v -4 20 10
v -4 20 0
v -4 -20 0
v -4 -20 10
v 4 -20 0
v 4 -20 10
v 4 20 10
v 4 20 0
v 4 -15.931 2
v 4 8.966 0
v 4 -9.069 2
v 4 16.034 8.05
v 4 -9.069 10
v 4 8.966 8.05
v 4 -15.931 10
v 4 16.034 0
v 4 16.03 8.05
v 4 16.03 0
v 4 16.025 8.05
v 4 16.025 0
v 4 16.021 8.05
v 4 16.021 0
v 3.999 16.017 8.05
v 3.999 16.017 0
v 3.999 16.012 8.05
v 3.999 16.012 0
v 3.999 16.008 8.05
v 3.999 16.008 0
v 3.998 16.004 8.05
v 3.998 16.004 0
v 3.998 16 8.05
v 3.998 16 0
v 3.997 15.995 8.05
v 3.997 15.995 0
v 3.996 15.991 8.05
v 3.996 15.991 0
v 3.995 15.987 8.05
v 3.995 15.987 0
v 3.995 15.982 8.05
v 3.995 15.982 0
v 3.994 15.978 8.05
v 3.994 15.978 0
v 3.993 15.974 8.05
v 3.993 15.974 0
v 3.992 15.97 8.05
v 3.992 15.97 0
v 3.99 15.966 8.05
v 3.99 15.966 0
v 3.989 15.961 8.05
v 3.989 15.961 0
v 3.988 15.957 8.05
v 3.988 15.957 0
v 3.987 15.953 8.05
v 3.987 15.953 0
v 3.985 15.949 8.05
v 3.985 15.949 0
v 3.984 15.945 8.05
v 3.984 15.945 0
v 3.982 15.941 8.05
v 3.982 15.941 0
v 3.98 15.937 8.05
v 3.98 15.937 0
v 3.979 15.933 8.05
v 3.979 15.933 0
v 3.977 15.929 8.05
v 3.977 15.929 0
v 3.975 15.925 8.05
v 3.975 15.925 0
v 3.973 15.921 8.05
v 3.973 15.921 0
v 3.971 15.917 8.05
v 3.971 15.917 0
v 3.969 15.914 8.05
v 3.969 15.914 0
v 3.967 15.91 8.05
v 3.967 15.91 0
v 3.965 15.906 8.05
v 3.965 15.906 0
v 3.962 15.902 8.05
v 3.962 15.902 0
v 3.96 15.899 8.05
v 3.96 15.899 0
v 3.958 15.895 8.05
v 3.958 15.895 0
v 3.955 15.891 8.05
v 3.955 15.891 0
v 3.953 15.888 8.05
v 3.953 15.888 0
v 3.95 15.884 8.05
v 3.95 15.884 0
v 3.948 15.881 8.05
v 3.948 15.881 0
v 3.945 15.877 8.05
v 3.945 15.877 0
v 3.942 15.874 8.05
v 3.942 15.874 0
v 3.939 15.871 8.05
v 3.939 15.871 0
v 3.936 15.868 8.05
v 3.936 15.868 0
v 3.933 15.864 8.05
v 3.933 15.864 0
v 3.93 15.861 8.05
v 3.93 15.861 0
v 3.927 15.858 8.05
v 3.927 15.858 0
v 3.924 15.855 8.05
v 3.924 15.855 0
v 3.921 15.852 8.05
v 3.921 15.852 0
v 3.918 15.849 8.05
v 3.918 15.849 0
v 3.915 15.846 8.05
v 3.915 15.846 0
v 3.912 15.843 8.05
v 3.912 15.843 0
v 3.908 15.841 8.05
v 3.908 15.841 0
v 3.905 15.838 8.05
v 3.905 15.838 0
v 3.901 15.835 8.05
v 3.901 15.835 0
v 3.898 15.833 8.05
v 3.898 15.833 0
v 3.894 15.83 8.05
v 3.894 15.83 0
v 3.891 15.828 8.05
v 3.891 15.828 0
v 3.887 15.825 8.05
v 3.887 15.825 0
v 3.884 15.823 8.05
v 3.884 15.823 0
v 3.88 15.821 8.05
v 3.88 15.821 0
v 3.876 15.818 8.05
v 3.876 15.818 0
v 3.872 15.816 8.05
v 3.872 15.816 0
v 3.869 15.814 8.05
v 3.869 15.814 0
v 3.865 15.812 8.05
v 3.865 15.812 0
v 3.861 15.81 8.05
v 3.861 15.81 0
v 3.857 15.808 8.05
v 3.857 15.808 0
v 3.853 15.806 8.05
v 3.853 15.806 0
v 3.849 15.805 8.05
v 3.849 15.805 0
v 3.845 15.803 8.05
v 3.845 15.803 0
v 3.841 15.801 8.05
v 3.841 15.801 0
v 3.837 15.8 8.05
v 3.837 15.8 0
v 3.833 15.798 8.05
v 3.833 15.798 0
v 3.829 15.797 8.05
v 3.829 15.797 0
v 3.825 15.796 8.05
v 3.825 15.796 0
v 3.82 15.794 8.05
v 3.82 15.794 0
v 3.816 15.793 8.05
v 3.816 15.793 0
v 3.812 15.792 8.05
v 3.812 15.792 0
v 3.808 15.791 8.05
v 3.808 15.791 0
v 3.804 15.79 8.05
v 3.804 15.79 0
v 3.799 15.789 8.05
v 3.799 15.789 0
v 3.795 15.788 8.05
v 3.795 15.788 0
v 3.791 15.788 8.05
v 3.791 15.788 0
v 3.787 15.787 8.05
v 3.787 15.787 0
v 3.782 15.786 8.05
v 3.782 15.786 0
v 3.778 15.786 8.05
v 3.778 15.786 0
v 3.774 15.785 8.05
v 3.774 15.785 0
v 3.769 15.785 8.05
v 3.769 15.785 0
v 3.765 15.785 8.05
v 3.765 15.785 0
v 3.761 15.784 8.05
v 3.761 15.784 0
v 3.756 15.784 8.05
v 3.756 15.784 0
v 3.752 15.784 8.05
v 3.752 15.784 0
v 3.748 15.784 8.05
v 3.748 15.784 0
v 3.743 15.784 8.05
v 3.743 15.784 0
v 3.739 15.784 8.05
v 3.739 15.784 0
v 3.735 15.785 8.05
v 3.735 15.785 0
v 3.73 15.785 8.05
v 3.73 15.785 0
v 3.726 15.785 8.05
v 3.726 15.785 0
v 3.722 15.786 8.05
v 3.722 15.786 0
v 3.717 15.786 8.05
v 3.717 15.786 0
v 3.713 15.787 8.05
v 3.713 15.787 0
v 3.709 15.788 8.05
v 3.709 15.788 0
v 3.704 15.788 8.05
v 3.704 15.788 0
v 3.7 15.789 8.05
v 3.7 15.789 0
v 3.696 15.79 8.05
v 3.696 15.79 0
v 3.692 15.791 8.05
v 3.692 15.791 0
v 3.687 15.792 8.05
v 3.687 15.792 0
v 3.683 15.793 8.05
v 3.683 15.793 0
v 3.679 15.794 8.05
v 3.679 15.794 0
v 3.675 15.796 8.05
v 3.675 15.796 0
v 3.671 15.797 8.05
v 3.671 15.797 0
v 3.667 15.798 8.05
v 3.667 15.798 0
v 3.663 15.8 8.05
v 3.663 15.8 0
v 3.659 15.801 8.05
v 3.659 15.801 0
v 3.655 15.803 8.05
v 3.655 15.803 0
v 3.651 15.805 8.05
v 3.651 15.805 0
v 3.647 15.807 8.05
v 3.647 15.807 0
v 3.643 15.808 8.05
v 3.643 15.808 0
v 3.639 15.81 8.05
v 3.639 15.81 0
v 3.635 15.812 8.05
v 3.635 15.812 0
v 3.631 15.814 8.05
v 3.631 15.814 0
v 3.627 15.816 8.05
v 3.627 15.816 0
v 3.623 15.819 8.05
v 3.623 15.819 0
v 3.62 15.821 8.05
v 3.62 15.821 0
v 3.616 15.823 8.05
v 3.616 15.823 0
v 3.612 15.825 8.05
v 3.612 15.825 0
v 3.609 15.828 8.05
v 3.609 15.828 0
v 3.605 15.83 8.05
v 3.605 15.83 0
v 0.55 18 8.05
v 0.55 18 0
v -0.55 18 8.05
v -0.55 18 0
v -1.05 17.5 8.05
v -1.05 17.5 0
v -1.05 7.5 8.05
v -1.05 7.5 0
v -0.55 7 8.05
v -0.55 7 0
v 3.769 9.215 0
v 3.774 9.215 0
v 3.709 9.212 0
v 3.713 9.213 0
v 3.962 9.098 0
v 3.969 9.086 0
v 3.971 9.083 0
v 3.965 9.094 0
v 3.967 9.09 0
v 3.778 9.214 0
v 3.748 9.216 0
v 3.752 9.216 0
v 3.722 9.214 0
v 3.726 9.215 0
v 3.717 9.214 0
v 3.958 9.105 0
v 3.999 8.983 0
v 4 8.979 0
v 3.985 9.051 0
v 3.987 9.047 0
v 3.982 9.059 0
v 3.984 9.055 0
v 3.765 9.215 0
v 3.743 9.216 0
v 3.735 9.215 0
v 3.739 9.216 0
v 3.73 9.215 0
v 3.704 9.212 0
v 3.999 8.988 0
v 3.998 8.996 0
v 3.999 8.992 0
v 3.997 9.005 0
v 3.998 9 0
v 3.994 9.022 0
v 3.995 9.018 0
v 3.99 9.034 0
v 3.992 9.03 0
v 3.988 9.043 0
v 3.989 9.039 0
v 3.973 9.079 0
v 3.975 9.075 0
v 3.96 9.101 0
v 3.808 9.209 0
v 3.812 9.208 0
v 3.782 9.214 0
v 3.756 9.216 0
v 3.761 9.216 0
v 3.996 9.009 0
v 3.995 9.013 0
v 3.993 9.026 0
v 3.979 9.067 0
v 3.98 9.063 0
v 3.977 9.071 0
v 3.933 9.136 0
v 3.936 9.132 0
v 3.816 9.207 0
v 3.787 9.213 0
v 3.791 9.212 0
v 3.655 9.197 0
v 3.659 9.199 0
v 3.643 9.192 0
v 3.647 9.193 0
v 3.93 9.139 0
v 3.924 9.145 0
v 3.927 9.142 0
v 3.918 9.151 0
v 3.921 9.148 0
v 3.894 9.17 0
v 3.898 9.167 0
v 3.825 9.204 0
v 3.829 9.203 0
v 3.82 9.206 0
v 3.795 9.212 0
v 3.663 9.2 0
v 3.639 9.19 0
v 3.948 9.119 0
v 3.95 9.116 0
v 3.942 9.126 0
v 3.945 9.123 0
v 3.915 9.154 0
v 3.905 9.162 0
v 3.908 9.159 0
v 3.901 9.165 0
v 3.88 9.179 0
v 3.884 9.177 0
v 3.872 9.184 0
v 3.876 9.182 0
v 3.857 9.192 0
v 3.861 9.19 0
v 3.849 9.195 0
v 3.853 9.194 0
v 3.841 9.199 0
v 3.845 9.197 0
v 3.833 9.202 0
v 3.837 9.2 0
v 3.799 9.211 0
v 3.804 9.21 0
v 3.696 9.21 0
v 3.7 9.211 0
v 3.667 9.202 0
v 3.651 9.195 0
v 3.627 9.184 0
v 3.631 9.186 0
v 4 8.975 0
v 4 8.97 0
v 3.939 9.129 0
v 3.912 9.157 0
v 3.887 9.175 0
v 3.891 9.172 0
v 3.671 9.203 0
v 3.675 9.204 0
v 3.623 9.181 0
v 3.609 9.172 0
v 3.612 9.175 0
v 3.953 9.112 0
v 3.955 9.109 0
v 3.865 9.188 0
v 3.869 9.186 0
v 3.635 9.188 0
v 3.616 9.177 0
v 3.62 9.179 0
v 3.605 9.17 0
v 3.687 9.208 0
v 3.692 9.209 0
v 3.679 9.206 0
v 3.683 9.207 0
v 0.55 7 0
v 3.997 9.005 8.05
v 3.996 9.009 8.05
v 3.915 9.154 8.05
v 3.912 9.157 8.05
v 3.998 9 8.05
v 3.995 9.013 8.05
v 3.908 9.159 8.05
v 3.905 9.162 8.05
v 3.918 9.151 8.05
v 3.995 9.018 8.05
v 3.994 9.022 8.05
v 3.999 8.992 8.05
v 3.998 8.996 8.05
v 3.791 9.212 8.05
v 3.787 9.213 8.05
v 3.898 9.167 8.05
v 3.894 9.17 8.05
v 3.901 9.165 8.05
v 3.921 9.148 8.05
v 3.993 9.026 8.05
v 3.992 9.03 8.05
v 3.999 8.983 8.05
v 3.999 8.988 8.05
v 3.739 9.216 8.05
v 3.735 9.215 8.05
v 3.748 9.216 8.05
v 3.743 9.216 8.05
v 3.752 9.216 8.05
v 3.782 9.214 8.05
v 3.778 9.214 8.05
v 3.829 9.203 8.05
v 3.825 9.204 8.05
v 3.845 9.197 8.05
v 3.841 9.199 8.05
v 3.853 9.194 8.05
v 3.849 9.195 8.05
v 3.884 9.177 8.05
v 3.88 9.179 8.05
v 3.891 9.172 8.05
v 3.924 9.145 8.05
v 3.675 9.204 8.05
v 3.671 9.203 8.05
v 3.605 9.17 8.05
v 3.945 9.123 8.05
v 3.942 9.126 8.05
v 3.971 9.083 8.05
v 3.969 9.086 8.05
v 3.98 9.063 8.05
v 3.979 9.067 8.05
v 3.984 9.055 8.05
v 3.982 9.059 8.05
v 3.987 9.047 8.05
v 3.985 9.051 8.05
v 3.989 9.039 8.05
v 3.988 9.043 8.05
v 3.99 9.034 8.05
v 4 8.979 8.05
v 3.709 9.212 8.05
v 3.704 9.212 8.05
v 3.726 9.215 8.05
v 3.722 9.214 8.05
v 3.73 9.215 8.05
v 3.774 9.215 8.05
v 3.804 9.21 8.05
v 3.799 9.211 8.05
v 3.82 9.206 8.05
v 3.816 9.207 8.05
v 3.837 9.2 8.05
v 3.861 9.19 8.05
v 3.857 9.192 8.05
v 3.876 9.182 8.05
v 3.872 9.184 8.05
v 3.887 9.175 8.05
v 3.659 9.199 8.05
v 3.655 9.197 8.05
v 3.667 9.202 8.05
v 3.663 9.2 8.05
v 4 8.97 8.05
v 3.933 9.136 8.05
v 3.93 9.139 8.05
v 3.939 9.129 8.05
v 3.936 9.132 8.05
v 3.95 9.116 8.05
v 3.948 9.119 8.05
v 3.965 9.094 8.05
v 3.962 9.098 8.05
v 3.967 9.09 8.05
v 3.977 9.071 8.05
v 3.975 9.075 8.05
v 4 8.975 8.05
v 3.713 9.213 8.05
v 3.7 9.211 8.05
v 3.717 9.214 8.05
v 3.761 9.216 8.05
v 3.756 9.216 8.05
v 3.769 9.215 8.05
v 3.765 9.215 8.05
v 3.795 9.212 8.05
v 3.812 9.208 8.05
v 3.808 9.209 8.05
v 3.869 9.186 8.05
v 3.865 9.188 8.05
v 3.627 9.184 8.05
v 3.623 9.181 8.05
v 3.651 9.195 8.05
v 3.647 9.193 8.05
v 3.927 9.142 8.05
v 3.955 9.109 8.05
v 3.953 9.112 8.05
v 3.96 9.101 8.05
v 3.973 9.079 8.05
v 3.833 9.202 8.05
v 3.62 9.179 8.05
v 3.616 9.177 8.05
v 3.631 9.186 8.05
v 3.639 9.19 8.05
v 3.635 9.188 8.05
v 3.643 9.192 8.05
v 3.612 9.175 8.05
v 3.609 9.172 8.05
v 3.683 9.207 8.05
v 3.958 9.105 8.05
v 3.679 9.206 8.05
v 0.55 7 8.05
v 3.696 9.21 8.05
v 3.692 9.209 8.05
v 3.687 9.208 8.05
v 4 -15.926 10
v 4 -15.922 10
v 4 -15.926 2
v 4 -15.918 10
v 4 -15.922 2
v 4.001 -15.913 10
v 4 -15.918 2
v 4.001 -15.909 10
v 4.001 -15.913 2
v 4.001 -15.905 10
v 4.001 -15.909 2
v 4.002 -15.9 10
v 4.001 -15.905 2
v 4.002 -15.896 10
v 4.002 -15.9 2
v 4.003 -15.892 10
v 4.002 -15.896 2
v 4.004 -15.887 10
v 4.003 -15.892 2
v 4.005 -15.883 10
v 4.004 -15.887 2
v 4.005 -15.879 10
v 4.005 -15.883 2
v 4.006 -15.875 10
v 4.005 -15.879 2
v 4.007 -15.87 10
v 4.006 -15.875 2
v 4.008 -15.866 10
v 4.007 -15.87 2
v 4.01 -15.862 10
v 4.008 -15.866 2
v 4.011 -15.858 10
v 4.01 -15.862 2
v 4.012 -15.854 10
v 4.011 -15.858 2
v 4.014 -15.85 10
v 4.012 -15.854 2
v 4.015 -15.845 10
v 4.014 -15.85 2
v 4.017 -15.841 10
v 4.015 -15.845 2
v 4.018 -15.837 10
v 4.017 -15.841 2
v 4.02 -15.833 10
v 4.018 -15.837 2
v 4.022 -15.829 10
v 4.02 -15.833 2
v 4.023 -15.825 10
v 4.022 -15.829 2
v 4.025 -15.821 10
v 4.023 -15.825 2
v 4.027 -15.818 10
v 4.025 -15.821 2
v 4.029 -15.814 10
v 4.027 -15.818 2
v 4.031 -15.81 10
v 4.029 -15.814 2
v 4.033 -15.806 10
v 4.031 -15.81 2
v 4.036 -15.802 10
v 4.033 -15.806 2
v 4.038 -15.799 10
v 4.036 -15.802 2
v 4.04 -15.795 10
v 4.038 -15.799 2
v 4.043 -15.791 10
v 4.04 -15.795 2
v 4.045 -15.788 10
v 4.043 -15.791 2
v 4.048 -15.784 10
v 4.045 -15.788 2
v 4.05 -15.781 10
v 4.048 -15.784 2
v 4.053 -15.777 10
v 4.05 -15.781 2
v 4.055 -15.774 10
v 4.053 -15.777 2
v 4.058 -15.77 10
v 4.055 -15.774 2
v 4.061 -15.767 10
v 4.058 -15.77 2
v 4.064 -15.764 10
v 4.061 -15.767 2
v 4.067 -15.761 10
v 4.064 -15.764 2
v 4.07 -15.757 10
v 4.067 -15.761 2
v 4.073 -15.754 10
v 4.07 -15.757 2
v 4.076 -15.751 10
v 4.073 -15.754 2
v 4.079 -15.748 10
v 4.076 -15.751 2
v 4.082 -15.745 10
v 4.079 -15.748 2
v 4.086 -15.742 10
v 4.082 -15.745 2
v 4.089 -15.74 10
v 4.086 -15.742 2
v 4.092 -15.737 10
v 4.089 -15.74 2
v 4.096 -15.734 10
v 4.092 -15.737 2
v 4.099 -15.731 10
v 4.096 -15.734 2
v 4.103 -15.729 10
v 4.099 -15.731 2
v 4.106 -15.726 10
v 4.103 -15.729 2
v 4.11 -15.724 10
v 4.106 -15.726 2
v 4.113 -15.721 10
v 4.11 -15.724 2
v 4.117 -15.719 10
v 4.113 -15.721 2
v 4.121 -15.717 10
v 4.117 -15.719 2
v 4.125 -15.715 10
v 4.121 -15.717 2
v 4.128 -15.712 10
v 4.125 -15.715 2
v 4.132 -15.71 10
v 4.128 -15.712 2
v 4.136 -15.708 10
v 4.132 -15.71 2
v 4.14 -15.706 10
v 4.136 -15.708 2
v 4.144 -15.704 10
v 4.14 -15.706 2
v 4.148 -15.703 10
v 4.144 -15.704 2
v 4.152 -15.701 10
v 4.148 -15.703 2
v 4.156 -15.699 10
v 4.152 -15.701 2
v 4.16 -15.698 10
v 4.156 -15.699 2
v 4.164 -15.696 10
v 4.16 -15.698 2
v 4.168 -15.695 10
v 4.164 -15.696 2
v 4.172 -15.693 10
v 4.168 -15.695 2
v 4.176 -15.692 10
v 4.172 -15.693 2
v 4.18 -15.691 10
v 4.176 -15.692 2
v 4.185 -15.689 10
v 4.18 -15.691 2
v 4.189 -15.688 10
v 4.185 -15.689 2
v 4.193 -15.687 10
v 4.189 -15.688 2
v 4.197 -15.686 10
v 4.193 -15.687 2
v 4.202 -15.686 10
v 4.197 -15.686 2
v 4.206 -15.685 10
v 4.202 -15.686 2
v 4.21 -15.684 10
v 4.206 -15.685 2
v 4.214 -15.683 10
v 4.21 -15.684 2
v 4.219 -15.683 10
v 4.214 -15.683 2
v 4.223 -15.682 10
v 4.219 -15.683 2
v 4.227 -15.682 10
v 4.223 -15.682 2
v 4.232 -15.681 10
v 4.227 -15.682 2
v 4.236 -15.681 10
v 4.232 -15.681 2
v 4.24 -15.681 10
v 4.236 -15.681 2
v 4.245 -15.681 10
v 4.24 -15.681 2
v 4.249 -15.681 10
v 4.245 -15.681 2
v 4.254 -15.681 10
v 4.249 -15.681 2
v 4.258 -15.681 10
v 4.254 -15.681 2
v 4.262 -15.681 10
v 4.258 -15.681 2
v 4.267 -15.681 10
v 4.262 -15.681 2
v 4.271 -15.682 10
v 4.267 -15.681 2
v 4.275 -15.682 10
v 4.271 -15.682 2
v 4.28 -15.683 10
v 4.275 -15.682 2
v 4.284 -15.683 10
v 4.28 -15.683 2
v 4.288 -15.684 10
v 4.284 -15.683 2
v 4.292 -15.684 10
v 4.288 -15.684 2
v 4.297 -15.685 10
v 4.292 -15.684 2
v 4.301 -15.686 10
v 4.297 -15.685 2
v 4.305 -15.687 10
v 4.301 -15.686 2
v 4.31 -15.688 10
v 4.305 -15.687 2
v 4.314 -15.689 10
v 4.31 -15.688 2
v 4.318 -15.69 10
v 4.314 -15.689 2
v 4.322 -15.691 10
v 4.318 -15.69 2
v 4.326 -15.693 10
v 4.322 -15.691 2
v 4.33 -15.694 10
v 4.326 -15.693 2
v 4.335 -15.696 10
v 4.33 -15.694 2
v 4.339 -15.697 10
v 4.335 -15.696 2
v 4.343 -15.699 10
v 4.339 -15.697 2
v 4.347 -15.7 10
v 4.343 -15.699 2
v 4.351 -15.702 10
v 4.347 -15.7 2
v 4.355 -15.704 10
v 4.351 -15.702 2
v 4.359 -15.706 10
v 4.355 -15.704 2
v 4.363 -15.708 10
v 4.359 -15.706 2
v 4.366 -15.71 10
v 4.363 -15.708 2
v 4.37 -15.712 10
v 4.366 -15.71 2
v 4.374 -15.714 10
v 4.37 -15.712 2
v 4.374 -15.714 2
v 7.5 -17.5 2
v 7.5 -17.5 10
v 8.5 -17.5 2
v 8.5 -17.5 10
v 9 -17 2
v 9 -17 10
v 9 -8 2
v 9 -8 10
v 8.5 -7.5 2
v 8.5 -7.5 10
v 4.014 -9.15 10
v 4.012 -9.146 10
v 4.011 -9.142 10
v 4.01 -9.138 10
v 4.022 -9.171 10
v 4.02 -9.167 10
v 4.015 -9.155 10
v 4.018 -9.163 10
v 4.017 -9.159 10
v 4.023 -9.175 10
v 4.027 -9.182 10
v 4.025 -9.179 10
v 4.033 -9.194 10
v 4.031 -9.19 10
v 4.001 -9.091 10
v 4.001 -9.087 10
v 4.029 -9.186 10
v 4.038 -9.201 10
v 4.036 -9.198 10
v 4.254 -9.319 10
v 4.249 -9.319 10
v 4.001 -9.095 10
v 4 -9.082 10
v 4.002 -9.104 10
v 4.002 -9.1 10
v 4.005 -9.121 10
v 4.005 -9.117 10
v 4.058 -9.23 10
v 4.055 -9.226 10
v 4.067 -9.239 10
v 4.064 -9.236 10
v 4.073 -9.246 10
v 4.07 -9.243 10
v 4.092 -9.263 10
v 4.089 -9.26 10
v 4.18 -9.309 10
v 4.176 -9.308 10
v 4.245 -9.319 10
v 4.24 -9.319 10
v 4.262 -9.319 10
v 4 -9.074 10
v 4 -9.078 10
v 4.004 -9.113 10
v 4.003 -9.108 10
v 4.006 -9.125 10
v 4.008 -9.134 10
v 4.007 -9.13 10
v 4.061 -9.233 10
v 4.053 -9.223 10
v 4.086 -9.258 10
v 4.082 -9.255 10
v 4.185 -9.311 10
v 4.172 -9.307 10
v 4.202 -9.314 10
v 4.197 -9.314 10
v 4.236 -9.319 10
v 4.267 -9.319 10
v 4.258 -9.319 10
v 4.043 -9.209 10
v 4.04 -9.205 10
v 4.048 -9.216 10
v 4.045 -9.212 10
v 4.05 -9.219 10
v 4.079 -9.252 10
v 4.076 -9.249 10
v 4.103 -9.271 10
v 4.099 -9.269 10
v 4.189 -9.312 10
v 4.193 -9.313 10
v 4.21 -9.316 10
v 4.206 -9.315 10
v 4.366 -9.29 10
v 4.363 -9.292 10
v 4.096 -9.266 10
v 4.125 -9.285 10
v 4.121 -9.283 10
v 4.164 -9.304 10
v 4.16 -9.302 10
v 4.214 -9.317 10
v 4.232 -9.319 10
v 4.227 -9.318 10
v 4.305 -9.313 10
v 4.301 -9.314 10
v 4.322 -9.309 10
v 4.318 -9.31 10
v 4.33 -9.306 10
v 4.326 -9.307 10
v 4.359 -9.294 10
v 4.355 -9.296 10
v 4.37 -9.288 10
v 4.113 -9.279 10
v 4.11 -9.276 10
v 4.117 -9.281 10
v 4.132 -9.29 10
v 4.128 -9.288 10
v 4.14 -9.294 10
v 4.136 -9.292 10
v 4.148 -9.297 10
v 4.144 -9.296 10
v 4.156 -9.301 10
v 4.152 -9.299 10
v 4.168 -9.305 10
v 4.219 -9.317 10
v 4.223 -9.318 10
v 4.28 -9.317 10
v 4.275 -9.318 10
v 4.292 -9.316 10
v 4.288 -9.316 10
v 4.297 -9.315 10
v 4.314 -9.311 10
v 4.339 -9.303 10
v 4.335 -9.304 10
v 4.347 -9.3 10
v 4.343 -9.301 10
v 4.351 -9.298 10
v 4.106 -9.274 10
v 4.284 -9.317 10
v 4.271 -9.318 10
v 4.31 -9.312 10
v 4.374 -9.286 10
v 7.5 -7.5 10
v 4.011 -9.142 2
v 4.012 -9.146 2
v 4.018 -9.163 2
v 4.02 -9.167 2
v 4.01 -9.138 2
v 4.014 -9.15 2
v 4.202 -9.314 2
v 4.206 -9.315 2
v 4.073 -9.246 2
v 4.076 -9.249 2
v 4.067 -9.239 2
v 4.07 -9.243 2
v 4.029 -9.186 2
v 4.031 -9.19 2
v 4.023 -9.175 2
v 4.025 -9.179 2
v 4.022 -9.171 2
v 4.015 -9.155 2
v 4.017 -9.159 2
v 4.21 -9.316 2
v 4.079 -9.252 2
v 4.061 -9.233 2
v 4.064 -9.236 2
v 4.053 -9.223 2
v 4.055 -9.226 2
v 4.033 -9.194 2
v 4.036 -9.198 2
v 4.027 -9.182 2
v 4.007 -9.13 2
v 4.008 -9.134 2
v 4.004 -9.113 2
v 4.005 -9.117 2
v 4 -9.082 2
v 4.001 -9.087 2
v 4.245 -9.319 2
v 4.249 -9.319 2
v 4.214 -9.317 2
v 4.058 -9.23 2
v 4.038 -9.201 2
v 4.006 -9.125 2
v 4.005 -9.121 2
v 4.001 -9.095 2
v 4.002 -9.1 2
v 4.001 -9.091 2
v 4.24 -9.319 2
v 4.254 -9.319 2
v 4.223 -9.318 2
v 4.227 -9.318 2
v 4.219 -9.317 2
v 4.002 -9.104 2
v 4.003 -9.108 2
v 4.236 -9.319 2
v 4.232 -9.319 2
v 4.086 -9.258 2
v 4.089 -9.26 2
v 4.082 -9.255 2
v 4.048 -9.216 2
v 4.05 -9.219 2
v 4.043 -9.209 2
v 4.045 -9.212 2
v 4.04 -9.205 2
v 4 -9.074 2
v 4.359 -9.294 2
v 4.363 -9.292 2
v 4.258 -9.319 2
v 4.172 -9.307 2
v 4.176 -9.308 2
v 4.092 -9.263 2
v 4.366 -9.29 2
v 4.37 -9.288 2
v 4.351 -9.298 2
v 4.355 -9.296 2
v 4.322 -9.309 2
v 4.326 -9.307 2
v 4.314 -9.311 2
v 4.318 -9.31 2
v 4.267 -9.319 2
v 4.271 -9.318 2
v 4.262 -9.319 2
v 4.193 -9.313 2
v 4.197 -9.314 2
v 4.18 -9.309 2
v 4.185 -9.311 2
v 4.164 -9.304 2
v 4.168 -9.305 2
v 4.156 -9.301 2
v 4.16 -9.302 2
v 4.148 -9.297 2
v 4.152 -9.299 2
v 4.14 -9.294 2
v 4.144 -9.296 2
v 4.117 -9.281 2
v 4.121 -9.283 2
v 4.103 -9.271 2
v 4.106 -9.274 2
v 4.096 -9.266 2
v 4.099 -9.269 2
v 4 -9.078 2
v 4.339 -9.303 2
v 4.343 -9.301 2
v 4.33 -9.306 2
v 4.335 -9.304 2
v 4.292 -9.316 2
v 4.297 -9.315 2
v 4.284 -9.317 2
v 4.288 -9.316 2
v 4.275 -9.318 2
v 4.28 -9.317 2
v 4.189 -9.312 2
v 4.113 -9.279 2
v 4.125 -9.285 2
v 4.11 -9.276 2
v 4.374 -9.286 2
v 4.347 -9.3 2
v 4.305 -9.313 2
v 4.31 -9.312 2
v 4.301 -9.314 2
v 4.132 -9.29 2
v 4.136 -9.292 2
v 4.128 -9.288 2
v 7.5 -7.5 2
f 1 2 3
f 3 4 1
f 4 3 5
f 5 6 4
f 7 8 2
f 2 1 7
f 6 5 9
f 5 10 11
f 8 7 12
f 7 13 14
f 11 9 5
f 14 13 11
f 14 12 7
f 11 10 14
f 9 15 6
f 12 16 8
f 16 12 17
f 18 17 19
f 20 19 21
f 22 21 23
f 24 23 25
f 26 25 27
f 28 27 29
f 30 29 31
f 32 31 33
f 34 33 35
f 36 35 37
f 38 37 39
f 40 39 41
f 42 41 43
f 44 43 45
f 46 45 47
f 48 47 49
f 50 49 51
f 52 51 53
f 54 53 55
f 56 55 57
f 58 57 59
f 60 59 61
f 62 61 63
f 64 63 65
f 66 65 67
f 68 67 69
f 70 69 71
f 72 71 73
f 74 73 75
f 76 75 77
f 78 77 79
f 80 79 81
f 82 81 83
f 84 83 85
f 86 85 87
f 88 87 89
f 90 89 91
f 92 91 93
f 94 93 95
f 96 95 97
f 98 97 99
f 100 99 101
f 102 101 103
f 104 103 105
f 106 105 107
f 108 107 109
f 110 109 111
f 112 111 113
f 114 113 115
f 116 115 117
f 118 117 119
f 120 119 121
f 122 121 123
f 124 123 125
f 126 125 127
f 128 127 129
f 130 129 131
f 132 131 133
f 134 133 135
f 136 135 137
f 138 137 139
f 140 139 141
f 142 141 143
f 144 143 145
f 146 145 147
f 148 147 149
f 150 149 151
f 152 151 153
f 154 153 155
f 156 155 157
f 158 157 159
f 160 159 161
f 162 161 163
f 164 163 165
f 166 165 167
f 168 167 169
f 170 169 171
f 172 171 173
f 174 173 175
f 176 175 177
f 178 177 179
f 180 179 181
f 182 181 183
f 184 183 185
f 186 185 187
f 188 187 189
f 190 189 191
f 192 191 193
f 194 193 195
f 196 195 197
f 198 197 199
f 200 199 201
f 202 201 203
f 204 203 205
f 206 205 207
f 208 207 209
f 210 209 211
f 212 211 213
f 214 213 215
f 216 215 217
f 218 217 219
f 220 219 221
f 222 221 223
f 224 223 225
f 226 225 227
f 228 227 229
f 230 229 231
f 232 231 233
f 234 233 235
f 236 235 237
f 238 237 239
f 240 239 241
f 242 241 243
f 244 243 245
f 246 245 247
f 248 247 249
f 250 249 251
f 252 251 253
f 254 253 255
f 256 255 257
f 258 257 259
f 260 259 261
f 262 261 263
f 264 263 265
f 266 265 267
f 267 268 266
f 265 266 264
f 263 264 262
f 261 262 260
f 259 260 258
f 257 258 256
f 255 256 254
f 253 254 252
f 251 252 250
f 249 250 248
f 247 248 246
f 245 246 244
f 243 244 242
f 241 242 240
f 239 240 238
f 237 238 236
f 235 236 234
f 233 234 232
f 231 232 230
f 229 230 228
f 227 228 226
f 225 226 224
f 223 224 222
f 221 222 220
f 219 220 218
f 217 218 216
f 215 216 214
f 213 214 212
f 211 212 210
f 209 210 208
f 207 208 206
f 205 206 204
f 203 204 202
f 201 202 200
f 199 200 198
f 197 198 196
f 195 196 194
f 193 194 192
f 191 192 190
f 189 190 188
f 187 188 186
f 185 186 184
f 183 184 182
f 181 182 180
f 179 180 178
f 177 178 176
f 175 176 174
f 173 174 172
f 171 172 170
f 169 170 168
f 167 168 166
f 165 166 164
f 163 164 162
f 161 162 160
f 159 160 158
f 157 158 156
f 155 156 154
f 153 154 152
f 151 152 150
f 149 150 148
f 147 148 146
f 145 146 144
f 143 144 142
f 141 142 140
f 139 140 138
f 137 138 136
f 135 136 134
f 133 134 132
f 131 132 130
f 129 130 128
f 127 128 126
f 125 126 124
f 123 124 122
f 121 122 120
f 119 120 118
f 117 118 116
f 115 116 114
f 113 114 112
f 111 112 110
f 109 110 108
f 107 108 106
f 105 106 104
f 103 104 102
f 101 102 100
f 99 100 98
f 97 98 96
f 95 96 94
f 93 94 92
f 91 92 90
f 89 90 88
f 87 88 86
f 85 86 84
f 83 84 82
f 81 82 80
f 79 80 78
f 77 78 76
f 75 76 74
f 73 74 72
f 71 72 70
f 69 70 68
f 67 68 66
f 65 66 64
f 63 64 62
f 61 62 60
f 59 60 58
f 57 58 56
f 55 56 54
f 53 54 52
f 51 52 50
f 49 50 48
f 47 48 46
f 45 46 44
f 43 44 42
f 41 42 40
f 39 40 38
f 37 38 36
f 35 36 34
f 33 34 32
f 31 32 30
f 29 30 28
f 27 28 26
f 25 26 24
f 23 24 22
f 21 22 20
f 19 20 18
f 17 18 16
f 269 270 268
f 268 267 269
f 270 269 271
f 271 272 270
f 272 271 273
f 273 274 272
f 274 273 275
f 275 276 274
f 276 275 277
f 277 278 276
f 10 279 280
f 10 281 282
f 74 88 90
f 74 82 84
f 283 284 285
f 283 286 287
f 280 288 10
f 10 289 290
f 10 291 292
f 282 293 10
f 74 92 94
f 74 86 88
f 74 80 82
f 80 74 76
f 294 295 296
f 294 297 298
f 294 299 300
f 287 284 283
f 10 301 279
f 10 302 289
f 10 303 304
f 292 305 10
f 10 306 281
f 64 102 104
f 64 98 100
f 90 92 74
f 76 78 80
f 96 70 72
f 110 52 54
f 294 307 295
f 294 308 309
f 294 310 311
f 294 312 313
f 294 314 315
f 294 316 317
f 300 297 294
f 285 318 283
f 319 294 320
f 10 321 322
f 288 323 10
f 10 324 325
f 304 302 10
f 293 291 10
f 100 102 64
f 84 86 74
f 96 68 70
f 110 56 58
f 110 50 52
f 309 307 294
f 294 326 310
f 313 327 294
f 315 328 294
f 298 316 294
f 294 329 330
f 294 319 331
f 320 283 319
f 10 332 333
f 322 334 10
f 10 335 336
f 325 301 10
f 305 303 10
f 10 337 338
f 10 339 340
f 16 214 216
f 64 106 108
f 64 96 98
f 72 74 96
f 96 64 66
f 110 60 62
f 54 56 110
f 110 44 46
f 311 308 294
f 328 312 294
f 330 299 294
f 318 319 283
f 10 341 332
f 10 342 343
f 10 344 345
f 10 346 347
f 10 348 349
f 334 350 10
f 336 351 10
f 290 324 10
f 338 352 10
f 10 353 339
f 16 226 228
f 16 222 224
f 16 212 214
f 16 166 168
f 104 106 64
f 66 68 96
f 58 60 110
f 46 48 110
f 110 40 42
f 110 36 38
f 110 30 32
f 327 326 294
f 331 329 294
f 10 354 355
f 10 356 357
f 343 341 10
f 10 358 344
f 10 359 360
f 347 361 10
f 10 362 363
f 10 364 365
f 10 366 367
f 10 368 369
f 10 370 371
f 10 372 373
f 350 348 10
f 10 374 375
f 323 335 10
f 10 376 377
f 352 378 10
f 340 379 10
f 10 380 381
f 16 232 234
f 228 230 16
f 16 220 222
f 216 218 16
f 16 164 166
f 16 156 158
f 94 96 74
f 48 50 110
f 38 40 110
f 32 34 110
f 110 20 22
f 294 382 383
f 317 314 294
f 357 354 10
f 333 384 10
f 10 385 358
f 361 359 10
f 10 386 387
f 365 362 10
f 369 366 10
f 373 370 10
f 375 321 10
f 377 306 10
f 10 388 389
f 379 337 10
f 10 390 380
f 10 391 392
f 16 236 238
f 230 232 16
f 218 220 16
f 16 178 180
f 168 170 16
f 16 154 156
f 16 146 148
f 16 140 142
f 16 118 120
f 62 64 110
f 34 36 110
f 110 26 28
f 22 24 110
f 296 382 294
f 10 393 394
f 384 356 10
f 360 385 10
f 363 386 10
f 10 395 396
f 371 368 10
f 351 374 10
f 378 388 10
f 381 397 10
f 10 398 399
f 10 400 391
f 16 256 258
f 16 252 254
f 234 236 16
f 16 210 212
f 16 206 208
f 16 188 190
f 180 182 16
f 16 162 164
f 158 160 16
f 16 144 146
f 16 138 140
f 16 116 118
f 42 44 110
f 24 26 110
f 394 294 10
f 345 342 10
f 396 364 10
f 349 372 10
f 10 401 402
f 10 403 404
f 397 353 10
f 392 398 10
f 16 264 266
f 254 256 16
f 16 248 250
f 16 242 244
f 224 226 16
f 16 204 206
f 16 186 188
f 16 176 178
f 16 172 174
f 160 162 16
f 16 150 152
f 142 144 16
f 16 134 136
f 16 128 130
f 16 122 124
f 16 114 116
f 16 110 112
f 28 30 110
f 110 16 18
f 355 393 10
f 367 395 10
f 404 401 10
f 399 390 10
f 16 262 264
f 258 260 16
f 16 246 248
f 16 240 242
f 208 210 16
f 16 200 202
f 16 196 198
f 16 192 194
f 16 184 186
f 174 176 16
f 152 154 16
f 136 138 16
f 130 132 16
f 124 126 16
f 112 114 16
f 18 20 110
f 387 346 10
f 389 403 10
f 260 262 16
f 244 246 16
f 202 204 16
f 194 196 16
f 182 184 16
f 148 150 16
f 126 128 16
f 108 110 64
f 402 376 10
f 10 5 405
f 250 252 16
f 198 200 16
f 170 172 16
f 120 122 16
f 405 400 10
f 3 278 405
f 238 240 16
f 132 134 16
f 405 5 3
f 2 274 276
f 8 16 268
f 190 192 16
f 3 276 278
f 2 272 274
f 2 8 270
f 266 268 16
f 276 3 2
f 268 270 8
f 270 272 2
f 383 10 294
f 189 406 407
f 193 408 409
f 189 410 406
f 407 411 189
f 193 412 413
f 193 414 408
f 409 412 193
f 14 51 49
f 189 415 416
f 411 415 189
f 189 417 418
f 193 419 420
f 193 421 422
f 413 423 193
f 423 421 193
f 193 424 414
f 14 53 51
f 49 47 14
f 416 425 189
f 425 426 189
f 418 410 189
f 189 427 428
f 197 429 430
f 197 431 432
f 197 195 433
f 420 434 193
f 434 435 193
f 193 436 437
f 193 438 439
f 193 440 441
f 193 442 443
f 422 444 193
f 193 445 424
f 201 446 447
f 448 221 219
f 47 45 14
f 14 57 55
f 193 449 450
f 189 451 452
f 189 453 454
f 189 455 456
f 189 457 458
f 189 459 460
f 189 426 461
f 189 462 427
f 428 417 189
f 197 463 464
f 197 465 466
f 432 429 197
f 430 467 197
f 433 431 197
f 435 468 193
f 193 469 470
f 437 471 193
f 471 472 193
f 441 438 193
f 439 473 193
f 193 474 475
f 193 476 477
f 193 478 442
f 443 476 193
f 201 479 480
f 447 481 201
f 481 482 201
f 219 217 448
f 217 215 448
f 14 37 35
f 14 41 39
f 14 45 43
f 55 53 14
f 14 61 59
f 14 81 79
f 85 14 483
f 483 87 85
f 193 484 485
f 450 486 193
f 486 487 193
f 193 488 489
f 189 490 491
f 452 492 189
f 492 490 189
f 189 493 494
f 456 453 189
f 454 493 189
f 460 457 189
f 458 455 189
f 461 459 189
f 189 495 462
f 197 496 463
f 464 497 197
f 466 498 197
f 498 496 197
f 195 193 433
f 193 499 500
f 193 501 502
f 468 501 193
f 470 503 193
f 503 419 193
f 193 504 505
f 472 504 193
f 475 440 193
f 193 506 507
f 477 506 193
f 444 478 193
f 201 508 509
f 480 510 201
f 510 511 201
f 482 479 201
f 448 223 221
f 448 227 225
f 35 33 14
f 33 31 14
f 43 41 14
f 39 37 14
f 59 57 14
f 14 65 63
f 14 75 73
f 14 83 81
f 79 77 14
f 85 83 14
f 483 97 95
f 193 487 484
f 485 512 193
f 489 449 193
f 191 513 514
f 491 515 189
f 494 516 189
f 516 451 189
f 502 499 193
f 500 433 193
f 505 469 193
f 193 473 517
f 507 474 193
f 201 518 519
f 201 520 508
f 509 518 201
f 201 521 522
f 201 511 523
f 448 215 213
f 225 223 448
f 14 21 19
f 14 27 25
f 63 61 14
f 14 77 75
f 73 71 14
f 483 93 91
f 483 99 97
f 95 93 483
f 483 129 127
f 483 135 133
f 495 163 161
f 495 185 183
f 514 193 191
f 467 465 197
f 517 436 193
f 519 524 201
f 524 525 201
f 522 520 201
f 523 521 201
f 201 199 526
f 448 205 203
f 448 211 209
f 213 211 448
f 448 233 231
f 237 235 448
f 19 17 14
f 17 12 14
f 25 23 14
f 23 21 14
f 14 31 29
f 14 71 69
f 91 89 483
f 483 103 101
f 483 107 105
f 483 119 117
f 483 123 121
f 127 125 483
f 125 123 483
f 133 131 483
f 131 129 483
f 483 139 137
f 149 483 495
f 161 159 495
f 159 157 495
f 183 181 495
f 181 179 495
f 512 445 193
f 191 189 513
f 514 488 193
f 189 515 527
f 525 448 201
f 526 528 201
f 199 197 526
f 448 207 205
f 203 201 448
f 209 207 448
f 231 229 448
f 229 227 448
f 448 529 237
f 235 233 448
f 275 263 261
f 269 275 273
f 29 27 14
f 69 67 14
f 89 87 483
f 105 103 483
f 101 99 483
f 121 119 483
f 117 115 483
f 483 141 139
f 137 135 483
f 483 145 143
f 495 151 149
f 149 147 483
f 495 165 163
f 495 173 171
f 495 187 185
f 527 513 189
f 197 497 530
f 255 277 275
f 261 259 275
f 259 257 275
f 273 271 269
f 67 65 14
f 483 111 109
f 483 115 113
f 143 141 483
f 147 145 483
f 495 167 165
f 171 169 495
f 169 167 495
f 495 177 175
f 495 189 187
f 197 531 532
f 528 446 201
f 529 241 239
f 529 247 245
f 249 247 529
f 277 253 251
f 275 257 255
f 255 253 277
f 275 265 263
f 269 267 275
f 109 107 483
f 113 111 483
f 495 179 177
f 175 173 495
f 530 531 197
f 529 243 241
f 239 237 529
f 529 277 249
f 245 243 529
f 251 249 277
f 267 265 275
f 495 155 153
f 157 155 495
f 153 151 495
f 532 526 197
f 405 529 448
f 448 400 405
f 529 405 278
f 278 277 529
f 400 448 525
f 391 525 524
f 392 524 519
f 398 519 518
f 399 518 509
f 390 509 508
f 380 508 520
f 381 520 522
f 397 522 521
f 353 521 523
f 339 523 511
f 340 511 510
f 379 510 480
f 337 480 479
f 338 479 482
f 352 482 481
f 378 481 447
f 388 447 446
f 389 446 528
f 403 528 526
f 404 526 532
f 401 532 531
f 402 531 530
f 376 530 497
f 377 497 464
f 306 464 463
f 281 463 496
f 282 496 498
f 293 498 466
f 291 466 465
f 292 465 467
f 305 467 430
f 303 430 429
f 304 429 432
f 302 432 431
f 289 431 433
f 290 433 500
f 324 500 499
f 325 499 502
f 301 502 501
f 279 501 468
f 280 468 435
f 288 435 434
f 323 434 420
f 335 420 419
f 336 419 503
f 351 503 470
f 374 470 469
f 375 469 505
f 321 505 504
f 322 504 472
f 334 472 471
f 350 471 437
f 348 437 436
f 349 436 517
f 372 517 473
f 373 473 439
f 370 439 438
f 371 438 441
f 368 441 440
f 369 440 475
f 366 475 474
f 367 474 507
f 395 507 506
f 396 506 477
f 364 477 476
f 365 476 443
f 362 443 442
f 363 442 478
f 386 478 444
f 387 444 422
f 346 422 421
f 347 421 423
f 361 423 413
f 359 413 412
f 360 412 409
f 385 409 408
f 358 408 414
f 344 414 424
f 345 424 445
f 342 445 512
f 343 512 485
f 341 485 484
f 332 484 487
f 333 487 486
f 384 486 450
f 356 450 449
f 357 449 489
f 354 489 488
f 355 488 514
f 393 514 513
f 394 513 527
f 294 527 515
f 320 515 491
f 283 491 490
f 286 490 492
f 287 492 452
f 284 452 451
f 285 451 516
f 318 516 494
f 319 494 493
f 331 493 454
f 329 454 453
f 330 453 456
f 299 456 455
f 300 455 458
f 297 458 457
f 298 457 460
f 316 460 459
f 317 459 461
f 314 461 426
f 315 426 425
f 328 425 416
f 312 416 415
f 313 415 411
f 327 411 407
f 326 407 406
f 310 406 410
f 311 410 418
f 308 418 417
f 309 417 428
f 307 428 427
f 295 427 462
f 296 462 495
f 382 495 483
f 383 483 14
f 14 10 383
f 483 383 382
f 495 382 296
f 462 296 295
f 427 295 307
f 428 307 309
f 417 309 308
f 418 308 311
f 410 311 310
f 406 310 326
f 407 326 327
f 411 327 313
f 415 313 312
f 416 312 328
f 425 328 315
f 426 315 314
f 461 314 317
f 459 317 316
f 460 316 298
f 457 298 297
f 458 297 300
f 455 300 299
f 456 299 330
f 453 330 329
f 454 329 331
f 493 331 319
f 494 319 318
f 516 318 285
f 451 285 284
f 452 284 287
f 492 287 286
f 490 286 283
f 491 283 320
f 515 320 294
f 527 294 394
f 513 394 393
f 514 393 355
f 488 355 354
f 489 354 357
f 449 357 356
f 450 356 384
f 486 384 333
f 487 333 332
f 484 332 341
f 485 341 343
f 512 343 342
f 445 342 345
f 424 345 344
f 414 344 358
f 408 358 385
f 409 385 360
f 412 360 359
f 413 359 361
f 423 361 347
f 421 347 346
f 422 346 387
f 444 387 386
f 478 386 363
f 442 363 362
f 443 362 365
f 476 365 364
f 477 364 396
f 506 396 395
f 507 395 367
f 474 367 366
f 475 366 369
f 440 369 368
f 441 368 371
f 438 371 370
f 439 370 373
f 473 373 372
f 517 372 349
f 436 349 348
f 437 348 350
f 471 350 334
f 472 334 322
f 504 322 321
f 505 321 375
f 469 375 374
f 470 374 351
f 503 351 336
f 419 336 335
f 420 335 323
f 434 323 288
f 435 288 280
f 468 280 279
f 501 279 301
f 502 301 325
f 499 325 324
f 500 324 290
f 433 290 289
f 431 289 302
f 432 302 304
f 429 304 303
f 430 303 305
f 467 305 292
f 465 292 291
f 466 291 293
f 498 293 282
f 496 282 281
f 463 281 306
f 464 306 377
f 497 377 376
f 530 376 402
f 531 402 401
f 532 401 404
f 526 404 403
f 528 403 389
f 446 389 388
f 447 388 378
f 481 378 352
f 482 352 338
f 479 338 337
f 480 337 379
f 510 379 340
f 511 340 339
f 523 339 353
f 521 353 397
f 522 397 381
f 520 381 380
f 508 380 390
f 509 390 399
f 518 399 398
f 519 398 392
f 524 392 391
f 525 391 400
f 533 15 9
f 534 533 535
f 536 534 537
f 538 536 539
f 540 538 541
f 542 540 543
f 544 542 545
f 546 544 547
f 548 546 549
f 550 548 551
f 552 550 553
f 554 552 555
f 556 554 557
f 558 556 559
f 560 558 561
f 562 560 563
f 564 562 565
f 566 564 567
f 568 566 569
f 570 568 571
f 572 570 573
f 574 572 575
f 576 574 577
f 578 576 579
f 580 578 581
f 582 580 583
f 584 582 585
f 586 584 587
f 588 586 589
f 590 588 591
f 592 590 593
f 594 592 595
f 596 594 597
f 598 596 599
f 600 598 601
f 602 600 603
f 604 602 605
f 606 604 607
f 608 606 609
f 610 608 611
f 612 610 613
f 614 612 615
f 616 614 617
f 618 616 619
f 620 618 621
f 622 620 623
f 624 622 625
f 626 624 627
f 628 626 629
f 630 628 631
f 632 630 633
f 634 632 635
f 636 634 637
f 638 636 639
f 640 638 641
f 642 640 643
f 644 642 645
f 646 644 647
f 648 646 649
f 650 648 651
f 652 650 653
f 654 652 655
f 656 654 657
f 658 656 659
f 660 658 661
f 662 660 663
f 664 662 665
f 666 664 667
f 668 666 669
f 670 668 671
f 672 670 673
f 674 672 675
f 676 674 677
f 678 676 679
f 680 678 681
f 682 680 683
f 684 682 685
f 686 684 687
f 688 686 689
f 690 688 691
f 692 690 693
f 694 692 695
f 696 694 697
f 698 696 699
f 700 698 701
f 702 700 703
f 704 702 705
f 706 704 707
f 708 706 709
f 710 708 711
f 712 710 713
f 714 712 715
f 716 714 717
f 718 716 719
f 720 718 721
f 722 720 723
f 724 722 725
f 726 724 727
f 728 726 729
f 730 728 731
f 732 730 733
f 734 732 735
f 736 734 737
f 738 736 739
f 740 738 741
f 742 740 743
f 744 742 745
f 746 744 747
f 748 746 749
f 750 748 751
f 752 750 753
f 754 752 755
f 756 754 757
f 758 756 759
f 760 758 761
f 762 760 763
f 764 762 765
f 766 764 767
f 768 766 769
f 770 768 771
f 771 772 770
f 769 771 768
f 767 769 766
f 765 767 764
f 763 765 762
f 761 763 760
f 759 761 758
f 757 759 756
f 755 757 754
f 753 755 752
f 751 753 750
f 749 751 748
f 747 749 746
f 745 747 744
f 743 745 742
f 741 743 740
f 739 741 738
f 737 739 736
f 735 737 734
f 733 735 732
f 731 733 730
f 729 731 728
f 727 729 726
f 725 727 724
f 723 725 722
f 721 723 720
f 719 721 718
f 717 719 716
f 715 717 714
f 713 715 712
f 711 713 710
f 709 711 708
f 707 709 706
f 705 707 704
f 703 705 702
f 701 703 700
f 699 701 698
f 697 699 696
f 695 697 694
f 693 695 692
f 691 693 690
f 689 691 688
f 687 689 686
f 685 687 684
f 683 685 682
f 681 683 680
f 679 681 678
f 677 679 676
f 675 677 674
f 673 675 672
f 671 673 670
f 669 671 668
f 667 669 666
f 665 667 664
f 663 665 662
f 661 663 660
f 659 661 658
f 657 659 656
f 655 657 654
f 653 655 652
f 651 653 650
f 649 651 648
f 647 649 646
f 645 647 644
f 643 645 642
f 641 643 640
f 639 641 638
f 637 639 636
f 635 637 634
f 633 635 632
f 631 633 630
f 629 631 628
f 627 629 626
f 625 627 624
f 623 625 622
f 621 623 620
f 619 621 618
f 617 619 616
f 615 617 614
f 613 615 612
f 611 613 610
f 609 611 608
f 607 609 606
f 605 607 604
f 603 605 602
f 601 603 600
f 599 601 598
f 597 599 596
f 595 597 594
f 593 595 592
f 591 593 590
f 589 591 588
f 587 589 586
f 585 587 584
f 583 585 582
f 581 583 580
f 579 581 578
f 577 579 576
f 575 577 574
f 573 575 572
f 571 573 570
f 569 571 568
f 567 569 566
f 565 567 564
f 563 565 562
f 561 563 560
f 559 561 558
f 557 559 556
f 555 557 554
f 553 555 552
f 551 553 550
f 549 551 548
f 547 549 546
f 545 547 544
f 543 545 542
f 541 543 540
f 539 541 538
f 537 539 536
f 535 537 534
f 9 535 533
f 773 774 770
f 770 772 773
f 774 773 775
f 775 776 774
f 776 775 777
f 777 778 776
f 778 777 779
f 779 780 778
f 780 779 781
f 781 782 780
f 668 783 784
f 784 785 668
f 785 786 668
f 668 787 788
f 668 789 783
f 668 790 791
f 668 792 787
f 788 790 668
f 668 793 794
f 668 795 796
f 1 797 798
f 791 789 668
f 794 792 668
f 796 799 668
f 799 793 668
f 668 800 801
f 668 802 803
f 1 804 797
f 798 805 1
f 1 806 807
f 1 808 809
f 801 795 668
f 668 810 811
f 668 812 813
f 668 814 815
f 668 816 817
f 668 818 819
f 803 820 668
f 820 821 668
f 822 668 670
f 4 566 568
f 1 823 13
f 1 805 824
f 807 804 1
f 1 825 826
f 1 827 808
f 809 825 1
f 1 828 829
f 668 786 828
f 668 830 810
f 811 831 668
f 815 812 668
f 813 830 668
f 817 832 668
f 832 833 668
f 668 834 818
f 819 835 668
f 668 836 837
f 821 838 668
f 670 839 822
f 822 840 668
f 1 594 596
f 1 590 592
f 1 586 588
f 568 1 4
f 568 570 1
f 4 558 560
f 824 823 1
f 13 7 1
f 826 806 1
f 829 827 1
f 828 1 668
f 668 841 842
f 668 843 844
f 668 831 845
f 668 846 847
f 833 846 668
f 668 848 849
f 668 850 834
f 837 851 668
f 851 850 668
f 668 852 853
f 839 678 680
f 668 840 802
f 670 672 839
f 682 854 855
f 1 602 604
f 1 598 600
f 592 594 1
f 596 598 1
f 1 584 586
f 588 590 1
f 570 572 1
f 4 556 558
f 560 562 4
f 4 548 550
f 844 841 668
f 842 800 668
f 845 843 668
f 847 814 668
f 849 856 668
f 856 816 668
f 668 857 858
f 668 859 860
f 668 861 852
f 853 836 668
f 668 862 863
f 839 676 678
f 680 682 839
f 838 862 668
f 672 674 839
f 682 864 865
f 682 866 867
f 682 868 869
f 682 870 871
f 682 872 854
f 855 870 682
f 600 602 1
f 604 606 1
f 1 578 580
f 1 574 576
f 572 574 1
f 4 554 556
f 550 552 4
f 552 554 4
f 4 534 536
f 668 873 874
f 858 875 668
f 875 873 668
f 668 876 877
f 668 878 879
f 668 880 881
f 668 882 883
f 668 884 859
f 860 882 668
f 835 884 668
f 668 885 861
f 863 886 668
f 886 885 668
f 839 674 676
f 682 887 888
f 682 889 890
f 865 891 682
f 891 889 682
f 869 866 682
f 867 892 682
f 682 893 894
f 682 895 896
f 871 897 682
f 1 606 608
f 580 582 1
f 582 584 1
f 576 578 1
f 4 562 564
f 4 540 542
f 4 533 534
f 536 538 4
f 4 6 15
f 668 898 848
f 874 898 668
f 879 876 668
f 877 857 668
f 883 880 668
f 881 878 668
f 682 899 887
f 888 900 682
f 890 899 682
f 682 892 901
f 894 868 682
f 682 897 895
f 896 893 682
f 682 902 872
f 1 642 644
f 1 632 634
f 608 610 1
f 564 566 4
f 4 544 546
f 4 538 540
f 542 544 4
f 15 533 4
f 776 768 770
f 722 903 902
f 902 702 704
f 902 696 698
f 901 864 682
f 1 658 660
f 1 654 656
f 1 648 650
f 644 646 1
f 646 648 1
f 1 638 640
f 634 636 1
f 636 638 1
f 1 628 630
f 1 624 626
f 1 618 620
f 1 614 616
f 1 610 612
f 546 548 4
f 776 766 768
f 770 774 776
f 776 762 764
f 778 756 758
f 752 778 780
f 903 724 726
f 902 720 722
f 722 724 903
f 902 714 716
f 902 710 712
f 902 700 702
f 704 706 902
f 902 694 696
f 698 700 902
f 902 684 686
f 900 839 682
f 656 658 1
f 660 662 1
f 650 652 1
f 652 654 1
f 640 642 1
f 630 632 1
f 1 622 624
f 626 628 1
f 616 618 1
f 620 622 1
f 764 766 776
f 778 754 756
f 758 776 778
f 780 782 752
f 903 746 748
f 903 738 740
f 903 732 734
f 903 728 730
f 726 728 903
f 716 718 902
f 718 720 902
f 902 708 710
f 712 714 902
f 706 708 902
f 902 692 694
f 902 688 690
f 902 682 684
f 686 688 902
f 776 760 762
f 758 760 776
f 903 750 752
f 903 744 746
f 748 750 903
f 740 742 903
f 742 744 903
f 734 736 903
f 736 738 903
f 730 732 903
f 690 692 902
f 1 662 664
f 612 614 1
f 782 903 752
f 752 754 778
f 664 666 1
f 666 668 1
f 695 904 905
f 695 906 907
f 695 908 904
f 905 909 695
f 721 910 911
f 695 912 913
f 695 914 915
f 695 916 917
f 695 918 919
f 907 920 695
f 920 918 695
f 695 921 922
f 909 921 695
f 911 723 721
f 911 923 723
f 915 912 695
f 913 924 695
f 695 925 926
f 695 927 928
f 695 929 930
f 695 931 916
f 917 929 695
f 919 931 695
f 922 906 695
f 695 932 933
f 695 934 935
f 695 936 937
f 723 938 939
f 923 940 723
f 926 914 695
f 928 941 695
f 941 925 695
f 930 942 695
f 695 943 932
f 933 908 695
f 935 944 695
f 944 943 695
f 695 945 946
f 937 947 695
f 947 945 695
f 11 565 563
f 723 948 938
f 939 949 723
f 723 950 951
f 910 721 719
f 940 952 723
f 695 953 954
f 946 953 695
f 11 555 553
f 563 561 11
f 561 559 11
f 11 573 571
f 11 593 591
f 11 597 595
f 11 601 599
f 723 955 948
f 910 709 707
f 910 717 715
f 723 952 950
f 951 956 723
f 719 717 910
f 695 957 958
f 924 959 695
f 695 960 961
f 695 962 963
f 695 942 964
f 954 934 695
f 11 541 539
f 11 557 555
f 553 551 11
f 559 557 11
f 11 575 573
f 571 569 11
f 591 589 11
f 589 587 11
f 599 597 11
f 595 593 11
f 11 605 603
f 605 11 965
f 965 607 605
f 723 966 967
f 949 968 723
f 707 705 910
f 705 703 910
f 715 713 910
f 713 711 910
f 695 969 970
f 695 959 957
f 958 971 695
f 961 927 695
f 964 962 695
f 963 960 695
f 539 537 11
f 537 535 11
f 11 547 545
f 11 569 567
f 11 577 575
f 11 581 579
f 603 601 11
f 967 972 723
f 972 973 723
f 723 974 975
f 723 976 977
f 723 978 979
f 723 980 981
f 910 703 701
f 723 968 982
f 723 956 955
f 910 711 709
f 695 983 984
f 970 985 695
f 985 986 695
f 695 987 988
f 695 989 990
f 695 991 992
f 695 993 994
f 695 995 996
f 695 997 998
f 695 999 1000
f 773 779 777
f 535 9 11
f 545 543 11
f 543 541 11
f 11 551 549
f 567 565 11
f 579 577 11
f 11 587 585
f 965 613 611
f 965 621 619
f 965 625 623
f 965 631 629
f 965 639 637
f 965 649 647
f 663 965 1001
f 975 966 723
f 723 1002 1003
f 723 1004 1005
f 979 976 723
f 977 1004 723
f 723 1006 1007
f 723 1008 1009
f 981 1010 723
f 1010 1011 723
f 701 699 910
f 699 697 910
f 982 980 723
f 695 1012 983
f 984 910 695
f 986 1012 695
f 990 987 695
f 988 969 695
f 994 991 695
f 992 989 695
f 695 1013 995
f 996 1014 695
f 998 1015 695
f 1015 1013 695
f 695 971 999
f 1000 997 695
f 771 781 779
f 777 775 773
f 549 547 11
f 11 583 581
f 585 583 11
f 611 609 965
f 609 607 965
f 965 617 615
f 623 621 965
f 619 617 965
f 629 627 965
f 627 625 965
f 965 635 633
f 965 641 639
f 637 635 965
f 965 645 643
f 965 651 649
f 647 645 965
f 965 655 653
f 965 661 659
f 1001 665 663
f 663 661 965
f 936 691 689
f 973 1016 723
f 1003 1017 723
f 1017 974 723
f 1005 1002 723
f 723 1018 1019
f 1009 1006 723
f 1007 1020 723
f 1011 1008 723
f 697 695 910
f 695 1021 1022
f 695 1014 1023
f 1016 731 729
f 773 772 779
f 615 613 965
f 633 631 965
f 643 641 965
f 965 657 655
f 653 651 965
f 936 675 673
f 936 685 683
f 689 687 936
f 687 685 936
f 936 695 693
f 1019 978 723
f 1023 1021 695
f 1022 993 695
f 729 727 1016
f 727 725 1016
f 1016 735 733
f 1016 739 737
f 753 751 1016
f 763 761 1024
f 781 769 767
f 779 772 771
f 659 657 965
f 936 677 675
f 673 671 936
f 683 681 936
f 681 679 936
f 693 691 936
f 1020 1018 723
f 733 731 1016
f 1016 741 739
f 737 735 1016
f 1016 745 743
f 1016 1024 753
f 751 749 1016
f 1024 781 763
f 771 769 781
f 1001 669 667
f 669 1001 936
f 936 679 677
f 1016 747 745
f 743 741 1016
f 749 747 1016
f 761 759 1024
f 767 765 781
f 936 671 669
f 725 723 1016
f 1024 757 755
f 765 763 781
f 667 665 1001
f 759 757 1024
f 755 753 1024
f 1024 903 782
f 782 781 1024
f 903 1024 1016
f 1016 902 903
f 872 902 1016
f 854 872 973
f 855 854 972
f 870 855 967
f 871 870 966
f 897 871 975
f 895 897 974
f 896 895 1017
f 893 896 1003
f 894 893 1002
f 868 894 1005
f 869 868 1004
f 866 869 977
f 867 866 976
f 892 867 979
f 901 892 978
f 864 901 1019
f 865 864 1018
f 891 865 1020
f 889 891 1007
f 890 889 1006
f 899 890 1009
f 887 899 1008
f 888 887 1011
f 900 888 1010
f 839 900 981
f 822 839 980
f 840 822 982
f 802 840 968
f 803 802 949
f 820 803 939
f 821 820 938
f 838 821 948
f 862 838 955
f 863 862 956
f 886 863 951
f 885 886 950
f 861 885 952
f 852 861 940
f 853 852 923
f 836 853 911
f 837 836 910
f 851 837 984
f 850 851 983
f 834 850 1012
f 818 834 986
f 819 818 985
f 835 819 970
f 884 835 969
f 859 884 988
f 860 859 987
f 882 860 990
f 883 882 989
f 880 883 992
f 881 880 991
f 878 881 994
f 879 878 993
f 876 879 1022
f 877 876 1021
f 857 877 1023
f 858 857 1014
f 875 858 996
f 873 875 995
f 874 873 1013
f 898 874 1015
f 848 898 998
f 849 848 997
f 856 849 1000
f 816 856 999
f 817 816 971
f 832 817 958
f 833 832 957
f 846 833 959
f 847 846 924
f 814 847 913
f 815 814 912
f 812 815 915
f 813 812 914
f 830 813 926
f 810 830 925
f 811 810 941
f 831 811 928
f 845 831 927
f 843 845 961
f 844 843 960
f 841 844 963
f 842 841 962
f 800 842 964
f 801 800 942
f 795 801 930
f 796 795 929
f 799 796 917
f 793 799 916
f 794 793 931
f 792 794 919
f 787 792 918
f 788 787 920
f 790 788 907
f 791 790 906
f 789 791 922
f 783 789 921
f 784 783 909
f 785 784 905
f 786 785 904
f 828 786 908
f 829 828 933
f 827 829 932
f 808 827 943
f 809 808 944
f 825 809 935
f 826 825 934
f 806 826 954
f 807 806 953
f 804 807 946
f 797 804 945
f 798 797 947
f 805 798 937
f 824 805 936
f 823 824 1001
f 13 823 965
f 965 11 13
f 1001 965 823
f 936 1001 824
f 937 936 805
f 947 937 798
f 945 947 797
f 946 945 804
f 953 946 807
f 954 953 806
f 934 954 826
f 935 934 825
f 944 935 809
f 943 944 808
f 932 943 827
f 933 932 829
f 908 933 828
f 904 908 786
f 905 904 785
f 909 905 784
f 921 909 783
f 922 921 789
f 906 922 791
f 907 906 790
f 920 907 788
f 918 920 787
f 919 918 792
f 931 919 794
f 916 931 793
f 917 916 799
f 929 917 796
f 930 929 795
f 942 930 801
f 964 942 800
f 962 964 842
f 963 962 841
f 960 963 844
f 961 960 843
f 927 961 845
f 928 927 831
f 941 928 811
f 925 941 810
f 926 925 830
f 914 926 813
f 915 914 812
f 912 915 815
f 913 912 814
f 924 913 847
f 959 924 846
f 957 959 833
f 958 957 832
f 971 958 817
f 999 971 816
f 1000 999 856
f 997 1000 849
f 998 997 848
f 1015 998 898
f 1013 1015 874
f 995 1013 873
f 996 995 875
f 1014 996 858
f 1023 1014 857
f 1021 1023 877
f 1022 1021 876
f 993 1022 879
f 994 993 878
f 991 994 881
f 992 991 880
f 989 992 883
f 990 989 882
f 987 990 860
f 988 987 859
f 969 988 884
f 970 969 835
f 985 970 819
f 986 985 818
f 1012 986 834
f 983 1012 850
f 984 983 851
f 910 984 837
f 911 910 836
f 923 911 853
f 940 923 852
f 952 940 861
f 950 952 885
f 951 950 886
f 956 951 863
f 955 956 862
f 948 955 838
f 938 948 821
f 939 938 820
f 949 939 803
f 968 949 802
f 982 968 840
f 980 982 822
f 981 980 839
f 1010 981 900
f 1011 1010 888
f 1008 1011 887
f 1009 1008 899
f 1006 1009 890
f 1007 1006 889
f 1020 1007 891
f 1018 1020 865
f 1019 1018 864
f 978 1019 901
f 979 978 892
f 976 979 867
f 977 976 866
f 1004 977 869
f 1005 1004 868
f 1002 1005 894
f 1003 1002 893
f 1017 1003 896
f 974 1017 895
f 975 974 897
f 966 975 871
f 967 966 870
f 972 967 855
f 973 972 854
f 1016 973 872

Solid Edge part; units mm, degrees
sketch "Sketch1" plane through (0, 0, 0) normal (0, 0, 1) x (1, 0, 0)
  line L0 (-4, -20) -> (4, -20)
  line L1 (4, -20) -> (4, 20)
  line L2 (4, 20) -> (-4, 20)
  line L3 (-4, 20) -> (-4, -20)
  dimension "D1" = 8
  dimension "D2" = 40
extrude "Protrusion1" add sketch "Sketch1" along normal blind 10
sketch "Sketch2" plane through (0, 0, 10) normal (0, 0, 1) x (0, 1, 0)
  line L0 (-15.5, -4) -> (-17.5, -7.5)
  line L1 (-17.5, -7.5) -> (-17.5, -9)
  line L2 (-17.5, -9) -> (-7.5, -9)
  line L3 (-7.5, -9) -> (-7.5, -7.5)
  line L4 (-7.5, -7.5) -> (-9.5, -4)
  line L5 (-15.5, -4) -> (-9.5, -4)
  dimension "D1" = 10
  dimension "D2" = 6
  dimension "D3" = 1.5
  dimension "D4" = 5
  dimension "D5" = 12.5
  dimension "D6" = 1.5
extrude "Extrusionsausprägung_2" add sketch "Sketch2" against normal blind 8
chamfer "Fase_1" distance 0.5 angle 45 2 edges at (9, -17.5, 6) (9, -7.5, 6)
sketch "Sketch3" plane through (0, 0, 0) normal (0, 0, -1) x (0, 1, 0)
  line L0 (9.45, 4) -> (7, 0.55)
  line L1 (7, 0.55) -> (7, -1.05)
  line L2 (7, -1.05) -> (18, -1.05)
  line L3 (18, -1.05) -> (18, 0.55)
  line L4 (18, 0.55) -> (15.55, 4)
  line L5 (15.55, 4) -> (9.45, 4)
  dimension "D1" = 11
  dimension "D2" = 6.1
  dimension "D3" = 1.6
  dimension "D4" = 1.6
  dimension "D5" = 12.5
  dimension "D6" = 5.05
extrude "Extrusionsausschnitt_1" cut sketch "Sketch3" against normal blind 8.05
chamfer "Fase_2" distance 0.5 angle 45 2 edges at (-1.05, 18, 4.025) (-1.05, 7, 4.025)
fillet "Verrundung_1" radius 0.25 4 edges at (4, 15.55, 4.025) (4, 9.45, 4.025) (4, -9.5, 6) (4, -15.5, 6)
